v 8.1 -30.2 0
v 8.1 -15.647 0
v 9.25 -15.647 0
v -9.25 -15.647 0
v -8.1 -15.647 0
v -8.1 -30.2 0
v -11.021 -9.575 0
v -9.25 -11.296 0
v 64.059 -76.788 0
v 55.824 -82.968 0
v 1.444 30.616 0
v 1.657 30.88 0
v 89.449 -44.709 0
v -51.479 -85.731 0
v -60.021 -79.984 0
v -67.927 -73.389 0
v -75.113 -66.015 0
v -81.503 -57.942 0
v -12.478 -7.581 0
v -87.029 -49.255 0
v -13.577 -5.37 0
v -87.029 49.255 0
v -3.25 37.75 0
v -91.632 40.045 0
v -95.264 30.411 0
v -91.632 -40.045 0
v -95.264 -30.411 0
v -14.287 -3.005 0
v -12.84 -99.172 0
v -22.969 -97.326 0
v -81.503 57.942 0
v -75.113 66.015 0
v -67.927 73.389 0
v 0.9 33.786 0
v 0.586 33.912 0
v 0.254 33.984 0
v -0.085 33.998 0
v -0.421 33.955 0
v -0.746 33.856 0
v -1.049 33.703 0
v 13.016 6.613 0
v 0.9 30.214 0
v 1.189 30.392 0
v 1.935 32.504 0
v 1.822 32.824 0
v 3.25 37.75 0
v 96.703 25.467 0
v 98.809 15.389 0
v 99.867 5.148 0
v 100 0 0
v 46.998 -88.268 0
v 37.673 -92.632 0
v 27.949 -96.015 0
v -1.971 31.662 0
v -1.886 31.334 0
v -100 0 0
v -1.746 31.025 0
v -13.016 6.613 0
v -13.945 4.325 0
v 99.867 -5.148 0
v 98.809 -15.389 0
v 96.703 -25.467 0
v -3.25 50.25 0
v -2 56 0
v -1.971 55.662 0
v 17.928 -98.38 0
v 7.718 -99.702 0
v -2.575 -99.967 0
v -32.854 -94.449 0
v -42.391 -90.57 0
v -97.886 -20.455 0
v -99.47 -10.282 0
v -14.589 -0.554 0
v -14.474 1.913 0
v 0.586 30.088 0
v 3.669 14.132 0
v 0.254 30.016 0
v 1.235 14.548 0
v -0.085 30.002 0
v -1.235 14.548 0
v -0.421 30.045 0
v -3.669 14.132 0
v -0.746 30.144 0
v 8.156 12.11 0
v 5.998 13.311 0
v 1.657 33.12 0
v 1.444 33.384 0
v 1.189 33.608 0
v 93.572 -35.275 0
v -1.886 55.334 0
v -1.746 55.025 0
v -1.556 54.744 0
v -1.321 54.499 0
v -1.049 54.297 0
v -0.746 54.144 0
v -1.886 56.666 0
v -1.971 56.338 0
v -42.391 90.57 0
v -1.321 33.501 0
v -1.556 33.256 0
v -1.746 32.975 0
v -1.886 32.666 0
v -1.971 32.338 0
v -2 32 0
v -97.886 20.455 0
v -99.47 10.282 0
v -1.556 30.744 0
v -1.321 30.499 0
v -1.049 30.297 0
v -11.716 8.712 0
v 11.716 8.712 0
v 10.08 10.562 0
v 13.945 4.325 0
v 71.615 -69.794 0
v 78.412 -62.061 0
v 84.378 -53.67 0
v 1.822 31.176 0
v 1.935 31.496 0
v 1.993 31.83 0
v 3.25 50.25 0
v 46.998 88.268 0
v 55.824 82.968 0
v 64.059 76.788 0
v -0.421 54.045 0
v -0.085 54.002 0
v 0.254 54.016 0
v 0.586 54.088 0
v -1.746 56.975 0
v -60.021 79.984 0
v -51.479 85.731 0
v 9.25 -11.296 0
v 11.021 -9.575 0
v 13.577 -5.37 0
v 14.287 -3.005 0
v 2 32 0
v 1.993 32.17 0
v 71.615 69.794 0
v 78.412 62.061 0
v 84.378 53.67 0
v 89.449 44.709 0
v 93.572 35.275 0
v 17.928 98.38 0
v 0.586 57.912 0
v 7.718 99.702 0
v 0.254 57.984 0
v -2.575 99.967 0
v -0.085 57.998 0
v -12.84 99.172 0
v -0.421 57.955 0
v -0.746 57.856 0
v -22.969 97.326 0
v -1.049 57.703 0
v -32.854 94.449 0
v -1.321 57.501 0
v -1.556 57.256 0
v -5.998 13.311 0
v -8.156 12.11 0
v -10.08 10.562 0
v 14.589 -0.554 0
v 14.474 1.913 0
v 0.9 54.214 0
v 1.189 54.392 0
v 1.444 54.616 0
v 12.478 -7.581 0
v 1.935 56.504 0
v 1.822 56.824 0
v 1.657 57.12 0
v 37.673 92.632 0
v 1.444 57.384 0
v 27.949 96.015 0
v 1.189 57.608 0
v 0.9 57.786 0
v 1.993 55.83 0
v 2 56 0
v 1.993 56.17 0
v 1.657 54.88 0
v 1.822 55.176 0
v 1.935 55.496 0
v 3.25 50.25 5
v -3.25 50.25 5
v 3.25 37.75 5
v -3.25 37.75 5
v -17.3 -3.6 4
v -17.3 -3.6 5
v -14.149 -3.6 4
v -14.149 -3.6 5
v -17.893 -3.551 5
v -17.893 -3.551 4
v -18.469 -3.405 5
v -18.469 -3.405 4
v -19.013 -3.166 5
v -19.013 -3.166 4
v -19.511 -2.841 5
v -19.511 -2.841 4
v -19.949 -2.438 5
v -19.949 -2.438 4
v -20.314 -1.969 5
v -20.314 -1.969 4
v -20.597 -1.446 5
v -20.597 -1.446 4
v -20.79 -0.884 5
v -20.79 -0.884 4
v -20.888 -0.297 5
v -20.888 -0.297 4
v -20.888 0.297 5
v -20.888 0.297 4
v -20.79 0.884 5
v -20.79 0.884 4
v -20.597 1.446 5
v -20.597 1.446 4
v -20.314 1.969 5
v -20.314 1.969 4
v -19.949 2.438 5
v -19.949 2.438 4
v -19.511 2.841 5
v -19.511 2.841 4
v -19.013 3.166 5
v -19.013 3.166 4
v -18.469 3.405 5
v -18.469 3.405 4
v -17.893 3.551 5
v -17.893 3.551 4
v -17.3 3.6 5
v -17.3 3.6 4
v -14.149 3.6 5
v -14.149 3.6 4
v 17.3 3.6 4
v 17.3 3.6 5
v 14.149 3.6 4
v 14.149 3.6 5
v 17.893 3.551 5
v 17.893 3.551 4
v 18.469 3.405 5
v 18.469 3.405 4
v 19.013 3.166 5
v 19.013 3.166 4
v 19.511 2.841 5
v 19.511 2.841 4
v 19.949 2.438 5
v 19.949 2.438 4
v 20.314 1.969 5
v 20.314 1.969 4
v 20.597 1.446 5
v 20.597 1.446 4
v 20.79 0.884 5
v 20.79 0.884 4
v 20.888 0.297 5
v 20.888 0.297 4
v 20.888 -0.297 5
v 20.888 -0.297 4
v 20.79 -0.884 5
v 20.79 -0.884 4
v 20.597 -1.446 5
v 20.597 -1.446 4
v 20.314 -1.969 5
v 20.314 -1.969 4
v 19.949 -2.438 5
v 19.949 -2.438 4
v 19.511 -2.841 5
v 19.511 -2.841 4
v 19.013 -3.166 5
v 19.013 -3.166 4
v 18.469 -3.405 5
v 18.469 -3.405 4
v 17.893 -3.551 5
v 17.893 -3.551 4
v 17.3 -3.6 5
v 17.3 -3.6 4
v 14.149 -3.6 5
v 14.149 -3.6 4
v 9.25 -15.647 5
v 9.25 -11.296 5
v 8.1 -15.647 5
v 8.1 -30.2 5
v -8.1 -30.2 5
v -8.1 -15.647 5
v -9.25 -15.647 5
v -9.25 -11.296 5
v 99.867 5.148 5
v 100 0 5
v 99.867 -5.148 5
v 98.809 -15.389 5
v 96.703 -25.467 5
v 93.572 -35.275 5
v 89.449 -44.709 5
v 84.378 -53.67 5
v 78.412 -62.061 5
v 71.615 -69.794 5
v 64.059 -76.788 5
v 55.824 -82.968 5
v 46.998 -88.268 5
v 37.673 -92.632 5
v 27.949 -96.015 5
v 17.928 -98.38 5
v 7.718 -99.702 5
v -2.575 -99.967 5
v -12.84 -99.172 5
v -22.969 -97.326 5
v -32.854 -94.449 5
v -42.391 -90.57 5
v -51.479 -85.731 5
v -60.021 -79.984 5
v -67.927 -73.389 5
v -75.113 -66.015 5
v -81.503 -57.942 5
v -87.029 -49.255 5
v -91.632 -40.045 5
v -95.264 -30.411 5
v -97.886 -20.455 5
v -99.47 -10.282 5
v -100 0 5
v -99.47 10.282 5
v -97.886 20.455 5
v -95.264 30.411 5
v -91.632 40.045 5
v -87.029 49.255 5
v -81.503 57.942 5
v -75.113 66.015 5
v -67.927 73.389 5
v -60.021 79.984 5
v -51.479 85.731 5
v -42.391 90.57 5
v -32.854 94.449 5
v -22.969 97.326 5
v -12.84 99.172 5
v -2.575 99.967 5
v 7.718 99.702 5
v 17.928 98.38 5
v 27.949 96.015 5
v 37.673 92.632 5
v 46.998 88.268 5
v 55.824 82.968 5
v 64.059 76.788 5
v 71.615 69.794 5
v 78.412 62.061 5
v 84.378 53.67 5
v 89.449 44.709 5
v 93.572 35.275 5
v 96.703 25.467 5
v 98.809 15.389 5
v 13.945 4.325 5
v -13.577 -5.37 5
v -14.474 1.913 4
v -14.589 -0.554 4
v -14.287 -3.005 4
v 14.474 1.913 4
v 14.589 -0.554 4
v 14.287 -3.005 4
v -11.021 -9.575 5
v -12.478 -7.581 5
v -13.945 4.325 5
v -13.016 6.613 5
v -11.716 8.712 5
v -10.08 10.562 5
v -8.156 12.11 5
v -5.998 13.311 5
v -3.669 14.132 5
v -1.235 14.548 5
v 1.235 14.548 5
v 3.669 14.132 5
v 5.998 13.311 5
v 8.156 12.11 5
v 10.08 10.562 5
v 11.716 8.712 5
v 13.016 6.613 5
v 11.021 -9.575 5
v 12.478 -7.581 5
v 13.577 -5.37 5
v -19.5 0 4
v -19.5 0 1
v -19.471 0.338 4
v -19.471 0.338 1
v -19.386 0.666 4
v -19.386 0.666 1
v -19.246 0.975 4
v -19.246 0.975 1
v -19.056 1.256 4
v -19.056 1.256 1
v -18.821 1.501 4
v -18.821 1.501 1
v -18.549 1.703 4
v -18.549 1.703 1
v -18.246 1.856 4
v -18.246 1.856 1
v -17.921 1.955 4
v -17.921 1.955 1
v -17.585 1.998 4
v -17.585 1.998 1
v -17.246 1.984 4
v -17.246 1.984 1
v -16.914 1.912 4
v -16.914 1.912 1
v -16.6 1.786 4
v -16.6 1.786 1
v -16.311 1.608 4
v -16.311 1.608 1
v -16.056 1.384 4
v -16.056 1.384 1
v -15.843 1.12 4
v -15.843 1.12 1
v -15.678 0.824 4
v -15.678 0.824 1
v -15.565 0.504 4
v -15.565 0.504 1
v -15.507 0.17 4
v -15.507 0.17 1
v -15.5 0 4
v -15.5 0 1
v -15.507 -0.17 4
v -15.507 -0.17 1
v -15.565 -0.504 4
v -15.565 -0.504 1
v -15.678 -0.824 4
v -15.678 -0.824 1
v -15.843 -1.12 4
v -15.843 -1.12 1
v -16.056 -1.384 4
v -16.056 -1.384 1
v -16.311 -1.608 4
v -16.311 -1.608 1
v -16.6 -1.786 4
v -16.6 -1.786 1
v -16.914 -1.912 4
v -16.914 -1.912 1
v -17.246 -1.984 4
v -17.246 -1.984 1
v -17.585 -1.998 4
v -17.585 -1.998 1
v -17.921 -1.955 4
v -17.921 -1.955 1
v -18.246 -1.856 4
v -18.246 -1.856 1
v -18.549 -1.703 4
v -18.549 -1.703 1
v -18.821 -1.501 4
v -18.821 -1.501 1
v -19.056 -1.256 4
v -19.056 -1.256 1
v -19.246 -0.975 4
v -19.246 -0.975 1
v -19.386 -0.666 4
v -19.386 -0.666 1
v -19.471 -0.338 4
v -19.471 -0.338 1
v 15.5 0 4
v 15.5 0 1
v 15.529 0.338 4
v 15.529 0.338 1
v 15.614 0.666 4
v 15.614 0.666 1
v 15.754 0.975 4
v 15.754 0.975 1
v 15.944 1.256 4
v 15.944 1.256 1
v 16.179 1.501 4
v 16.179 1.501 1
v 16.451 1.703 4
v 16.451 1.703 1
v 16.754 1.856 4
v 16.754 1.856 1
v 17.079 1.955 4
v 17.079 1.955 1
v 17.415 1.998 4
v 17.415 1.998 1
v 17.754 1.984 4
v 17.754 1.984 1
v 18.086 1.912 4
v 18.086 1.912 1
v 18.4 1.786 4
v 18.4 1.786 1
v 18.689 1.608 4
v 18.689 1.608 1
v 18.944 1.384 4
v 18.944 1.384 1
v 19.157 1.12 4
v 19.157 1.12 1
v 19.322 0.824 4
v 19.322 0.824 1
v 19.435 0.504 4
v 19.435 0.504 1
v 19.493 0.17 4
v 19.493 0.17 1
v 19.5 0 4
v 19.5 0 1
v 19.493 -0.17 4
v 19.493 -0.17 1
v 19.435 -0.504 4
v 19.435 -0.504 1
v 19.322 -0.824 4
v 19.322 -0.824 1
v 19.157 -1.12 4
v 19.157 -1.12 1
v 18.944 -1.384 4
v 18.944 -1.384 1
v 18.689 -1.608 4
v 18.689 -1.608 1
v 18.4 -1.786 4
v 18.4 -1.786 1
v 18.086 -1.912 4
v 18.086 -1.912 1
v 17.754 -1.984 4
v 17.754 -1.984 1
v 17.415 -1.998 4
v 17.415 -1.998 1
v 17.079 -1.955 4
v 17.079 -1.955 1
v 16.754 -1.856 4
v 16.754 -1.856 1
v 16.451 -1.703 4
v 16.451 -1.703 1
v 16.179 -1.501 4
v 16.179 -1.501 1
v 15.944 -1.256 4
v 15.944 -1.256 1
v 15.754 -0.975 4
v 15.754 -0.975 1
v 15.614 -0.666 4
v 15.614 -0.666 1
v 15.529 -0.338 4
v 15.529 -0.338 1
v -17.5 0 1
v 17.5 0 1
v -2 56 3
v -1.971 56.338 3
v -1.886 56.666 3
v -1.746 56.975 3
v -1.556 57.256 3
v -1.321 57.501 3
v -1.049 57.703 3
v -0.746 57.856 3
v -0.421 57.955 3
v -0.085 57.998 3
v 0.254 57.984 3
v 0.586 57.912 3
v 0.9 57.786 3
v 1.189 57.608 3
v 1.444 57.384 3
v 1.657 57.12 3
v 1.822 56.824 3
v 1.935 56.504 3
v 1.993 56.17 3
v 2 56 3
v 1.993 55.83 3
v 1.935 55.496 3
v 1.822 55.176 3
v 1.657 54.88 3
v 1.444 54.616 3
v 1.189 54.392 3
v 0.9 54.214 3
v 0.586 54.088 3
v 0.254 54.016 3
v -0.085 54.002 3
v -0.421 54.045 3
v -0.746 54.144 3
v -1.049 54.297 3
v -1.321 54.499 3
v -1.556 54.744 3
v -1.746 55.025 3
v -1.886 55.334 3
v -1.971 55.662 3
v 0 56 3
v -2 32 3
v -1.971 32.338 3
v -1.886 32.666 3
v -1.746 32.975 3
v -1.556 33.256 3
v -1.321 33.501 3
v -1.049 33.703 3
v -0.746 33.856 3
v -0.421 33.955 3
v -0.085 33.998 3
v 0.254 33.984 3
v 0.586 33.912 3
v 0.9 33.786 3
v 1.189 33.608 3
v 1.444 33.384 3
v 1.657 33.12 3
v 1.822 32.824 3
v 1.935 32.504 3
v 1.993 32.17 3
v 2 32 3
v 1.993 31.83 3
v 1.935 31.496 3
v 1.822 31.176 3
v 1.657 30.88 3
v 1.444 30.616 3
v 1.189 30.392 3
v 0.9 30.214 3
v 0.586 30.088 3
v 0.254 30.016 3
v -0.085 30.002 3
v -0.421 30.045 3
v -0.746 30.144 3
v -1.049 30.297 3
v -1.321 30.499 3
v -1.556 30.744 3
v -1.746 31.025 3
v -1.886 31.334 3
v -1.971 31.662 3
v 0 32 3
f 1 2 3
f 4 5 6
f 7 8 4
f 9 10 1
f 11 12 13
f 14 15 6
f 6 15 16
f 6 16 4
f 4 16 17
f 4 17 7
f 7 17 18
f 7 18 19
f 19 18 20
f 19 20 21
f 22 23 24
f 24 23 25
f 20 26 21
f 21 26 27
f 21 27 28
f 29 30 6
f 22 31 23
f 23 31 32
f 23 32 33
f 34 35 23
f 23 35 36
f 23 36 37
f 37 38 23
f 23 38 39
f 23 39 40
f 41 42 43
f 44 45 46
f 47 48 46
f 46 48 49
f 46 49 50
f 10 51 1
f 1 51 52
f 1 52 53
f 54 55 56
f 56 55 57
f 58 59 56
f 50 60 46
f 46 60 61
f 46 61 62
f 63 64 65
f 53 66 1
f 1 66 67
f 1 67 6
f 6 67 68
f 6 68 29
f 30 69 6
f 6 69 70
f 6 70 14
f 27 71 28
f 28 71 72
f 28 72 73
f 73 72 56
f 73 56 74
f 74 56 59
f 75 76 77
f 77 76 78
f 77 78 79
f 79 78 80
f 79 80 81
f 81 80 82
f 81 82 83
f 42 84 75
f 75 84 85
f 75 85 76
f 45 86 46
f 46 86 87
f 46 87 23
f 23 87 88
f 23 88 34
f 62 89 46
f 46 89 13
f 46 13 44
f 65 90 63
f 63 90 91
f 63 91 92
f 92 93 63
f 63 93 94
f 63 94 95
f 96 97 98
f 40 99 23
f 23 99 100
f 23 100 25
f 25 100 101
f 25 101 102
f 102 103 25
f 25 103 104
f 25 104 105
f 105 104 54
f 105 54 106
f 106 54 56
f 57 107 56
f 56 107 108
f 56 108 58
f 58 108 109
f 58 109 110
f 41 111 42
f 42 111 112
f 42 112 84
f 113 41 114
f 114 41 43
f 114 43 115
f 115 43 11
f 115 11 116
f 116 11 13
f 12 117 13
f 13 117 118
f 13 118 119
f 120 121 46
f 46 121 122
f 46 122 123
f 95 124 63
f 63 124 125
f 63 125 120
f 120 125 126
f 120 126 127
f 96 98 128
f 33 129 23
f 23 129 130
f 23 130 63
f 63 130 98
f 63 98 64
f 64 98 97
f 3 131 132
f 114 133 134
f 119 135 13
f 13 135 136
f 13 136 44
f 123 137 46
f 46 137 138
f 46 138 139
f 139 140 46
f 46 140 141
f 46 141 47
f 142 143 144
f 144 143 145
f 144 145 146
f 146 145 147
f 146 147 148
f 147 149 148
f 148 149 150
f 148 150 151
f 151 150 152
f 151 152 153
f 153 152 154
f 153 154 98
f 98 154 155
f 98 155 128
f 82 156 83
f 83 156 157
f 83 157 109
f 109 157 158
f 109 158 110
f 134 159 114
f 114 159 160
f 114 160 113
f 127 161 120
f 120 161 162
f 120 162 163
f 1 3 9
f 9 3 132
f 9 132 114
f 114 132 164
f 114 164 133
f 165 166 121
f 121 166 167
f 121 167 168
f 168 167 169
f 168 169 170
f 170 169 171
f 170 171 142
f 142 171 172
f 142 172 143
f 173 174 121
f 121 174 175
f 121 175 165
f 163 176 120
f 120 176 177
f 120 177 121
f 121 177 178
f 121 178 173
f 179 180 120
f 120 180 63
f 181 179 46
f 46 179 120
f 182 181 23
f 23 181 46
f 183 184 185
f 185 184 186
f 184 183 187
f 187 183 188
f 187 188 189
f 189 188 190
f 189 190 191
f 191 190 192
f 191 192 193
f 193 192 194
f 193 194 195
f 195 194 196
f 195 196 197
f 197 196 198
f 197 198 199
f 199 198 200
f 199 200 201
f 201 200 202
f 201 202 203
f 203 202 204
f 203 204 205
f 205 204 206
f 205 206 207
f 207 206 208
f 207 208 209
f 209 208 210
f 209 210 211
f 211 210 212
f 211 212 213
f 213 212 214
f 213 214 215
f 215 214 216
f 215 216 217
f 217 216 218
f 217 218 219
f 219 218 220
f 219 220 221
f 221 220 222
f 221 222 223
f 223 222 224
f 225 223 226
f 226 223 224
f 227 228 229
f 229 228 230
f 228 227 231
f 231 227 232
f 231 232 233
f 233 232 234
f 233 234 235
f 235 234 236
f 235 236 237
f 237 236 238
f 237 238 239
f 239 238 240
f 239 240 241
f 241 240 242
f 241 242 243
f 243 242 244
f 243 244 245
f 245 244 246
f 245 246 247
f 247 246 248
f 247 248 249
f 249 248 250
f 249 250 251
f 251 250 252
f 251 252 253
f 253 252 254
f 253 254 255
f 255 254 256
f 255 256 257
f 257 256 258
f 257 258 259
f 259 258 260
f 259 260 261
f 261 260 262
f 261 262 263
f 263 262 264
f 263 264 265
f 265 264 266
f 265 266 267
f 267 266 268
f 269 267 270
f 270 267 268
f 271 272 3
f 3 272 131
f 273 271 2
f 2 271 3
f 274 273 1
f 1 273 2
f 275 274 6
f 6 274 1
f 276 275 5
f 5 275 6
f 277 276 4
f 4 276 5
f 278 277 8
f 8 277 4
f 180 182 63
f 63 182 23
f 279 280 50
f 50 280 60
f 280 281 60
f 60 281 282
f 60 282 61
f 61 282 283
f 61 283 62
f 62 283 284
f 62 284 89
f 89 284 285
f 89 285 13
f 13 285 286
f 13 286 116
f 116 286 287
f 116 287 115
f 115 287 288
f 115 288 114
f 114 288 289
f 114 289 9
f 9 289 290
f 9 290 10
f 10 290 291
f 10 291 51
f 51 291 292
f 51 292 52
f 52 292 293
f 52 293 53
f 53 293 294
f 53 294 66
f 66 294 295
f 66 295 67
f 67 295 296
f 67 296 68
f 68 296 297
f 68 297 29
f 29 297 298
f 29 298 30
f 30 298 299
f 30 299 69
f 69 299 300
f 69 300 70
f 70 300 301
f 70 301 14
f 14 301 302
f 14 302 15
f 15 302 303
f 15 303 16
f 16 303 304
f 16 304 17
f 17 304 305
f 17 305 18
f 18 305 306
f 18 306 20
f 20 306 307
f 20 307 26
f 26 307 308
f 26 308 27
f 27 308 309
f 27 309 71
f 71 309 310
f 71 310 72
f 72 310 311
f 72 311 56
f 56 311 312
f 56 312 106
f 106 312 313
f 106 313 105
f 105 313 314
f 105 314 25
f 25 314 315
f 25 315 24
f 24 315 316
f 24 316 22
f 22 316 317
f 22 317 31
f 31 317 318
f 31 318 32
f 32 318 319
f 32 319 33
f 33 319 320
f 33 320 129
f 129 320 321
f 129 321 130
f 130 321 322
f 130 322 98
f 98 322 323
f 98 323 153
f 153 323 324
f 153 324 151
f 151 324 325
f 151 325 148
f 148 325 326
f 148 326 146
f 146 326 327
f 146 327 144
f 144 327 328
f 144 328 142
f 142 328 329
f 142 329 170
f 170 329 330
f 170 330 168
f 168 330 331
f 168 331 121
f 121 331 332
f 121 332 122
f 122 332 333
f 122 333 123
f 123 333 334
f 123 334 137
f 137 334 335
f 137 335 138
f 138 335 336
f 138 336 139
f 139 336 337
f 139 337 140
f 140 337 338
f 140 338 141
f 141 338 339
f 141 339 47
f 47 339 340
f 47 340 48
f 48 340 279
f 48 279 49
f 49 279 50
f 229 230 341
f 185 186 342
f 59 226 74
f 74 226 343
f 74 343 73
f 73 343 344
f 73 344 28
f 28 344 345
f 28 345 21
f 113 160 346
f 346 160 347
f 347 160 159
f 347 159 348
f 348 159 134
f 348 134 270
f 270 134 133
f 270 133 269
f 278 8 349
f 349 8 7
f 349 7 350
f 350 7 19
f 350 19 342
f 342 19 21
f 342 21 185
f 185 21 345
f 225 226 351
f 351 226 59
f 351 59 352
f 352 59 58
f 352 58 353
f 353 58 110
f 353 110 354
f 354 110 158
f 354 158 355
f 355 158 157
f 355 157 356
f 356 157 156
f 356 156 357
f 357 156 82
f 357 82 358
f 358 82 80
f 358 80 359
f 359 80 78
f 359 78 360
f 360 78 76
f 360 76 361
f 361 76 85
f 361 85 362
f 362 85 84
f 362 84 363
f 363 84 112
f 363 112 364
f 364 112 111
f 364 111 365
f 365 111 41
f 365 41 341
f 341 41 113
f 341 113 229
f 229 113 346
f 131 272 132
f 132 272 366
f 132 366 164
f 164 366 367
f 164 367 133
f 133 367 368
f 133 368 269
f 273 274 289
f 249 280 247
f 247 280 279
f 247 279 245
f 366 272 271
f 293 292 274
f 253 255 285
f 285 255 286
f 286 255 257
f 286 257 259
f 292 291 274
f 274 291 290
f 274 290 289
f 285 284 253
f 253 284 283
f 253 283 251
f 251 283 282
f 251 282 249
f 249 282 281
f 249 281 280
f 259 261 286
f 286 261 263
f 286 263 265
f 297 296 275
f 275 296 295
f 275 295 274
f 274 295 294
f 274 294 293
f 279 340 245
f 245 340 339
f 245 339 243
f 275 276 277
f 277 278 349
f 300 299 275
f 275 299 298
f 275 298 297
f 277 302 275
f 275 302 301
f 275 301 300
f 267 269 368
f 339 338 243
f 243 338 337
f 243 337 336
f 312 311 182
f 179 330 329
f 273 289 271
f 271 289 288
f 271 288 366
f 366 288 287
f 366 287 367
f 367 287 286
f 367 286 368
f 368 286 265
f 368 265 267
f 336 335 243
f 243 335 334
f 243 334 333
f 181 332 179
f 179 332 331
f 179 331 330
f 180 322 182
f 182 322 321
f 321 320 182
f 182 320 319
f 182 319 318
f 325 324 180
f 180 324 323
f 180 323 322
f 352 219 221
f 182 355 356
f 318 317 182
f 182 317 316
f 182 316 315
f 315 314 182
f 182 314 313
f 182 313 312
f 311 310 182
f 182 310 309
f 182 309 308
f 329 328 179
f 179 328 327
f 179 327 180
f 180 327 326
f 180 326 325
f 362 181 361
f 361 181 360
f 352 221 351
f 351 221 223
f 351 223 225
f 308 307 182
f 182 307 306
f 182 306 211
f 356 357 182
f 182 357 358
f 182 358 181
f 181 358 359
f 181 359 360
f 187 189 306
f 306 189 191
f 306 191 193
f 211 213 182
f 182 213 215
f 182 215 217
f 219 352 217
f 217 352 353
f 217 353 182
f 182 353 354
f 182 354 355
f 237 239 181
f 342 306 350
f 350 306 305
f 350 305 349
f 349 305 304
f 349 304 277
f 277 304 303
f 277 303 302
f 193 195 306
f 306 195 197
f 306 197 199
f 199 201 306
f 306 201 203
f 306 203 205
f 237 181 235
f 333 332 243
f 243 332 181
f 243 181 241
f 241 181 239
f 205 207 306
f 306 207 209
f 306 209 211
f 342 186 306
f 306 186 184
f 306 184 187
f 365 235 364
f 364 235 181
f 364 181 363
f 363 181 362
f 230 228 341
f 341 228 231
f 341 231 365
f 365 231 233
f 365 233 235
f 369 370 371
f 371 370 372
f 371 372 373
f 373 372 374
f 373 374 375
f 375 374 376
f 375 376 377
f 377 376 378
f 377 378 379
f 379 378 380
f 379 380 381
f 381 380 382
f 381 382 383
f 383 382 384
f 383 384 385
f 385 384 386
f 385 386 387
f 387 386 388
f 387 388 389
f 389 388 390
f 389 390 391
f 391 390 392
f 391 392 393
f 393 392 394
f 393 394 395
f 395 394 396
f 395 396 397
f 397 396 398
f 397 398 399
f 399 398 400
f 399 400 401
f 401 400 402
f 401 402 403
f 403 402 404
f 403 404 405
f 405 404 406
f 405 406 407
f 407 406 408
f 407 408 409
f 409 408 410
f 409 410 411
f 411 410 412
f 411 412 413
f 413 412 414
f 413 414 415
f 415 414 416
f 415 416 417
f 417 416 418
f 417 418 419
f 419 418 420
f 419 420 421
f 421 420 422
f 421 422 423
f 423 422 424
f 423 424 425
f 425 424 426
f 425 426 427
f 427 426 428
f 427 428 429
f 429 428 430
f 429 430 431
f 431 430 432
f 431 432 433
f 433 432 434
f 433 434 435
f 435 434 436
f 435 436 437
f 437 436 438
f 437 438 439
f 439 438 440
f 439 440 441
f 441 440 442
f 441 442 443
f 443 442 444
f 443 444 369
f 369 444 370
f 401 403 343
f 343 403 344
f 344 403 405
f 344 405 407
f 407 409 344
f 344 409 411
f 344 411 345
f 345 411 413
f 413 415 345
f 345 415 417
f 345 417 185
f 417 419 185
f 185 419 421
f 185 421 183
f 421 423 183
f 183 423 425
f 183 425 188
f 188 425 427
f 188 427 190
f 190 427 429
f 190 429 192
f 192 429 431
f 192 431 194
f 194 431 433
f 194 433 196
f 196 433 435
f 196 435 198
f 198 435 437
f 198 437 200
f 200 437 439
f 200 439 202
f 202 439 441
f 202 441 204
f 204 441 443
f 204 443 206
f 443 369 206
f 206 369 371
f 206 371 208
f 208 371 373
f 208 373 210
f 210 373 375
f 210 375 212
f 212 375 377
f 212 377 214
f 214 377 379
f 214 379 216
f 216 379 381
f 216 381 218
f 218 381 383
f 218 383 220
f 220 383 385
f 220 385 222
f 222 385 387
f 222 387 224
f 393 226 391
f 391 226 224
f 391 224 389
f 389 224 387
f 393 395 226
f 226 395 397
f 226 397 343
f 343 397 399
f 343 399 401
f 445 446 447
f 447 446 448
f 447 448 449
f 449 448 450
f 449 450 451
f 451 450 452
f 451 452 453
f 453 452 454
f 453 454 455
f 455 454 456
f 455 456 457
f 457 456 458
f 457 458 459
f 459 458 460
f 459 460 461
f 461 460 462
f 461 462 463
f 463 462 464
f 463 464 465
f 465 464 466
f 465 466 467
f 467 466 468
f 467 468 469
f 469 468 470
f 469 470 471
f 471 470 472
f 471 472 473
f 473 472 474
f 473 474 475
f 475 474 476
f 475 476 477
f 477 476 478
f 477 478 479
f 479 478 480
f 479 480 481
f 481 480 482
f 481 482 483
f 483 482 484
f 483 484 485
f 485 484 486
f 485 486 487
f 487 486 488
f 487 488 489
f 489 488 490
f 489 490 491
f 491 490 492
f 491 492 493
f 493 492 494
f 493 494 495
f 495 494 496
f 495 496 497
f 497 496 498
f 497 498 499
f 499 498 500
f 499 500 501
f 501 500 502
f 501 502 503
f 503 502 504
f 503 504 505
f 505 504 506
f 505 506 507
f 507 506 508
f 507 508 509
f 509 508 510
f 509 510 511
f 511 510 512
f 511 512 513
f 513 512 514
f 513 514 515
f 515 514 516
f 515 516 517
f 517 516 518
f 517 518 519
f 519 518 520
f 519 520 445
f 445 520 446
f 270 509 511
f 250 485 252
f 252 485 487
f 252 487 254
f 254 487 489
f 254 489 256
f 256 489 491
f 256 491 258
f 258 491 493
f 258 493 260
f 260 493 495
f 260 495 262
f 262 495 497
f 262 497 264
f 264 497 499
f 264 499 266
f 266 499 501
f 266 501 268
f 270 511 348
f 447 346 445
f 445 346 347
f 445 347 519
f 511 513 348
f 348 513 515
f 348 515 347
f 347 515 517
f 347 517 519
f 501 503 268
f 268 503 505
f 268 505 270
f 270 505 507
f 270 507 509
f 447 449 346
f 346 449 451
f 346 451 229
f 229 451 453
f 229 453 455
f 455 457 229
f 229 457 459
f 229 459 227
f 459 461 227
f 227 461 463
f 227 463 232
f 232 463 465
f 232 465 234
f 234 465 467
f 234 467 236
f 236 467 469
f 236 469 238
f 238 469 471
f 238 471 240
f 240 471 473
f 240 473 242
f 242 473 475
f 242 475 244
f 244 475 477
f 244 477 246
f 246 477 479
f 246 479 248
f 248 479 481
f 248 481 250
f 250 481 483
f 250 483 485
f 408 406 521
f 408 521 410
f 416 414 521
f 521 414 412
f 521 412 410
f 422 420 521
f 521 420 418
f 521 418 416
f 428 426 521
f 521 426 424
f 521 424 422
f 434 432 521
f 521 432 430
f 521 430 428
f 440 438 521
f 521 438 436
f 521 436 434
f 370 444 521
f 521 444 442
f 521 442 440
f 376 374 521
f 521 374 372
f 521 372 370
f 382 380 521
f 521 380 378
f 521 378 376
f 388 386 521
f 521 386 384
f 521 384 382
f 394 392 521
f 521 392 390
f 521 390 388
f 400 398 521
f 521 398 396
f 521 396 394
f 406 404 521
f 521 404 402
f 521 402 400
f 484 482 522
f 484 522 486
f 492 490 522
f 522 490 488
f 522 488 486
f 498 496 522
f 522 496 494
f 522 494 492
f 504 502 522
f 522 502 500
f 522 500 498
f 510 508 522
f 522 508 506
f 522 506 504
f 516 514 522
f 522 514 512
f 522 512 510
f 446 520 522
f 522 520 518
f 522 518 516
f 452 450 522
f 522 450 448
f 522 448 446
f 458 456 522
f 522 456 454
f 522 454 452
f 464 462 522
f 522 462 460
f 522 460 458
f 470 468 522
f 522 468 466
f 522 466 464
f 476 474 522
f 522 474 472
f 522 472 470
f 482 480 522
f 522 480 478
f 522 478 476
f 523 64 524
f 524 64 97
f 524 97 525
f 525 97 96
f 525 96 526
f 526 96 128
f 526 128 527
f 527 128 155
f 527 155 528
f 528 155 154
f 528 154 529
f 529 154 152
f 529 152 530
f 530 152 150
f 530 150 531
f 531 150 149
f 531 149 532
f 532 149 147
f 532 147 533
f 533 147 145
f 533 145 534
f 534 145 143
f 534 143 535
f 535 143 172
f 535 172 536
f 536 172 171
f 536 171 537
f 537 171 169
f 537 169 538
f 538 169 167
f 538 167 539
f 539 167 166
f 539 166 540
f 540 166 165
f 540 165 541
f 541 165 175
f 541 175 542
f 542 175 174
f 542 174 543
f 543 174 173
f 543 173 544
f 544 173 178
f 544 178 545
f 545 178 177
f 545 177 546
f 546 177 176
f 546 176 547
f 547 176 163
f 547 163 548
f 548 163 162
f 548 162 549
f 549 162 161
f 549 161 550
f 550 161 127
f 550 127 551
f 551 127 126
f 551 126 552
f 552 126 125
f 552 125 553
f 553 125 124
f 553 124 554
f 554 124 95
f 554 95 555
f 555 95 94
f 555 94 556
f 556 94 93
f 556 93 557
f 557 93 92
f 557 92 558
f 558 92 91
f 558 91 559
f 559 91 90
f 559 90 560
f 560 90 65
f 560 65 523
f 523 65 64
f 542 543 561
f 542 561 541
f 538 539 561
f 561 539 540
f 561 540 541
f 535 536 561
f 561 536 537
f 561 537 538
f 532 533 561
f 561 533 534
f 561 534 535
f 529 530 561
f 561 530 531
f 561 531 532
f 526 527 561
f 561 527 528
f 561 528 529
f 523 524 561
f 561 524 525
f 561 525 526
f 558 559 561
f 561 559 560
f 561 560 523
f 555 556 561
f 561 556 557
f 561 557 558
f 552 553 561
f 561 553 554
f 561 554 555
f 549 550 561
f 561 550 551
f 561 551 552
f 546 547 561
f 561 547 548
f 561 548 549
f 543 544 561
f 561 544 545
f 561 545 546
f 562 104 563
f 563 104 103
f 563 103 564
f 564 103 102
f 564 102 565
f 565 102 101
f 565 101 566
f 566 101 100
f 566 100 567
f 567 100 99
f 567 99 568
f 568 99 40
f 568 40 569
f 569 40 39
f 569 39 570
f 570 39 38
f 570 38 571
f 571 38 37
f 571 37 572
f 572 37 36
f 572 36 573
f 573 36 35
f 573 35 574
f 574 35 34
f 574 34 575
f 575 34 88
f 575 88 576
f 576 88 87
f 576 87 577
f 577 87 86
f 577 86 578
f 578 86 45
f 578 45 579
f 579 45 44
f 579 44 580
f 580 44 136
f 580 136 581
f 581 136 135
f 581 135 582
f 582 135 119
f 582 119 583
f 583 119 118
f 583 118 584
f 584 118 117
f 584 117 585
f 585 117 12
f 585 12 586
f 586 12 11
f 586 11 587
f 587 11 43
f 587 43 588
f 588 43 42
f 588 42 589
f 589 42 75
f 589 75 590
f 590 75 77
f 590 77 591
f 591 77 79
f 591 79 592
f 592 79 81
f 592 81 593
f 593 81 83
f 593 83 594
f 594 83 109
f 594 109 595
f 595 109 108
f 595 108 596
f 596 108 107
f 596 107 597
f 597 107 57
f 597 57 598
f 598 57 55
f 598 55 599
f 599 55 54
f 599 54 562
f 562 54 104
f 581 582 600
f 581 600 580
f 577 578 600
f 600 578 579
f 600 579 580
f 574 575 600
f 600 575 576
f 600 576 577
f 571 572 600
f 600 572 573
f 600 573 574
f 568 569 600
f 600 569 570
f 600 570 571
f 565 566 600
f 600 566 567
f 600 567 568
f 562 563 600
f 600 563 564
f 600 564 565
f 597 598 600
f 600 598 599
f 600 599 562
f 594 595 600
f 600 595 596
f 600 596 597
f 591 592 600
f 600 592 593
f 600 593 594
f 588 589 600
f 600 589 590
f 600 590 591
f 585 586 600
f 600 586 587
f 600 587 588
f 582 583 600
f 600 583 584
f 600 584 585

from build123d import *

# Parameters (mm, degrees)
SKETCH1_R           = 100
SKETCH1_R_2         = 2
SKETCH1_W           = 6.5
SKETCH1_H           = 12.5
BOSS_EXTRUDE1_DEPTH = 5
SKETCH1_3_R         = 2
BOSS_EXTRUDE2_DEPTH = 4
SKETCH1_4_R         = 2
BOSS_EXTRUDE3_DEPTH = 1
SKETCH1_6_R         = 2
BOSS_EXTRUDE6_DEPTH = 5
SKETCH1_7_R         = 2
CUT_EXTRUDE1_DEPTH  = 3


with BuildPart() as part:
    # Sketch1 → Boss-Extrude1 (new body)
    with BuildSketch(Plane.XY):
        Circle(SKETCH1_R)
        with BuildLine():
            Line((-17.3, 3.6), (-14.149204925, 3.6))
            ThreePointArc((-14.149204925, 3.6), (0, 14.6), (14.149204925, 3.6))
            Line((14.149204925, 3.6), (17.3, 3.6))
            ThreePointArc((17.3, 3.6), (20.9, 0), (17.3, -3.6))
            Line((17.3, -3.6), (14.149204925, -3.6))
            ThreePointArc((14.149204925, -3.6), (12.316145556, -7.840443778), (9.25, -11.295906338))
            Line((9.25, -11.295906338), (9.25, -15.647016094))
            Line((9.25, -15.647016094), (8.1, -15.647016094))
            Line((8.1, -15.647016094), (8.1, -30.2))
            Line((8.1, -30.2), (-8.1, -30.2))
            Line((-8.1, -30.2), (-8.1, -15.647016094))
            Line((-8.1, -15.647016094), (-9.25, -15.647016094))
            Line((-9.25, -15.647016094), (-9.25, -11.295906338))
            ThreePointArc((-9.25, -11.295906338), (-12.316145556, -7.840443778), (-14.149204925, -3.6))
            Line((-14.149204925, -3.6), (-17.3, -3.6))
            ThreePointArc((-17.3, -3.6), (-20.9, 0), (-17.3, 3.6))
        make_face(mode=Mode.SUBTRACT)
        with Locations((0, 32)):
            Circle(SKETCH1_R_2, mode=Mode.SUBTRACT)
        with Locations((0, 44)):
            Rectangle(SKETCH1_W, SKETCH1_H, mode=Mode.SUBTRACT)
        with Locations((0, 56)):
            Circle(SKETCH1_R_2, mode=Mode.SUBTRACT)
    extrude(amount=BOSS_EXTRUDE1_DEPTH)

    # Sketch1<3> → Boss-Extrude2 (add)
    # profile 1 of 2: a face of its own
    with BuildSketch(Plane.XY):
        with BuildLine():
            ThreePointArc((-14.149204925, -3.6), (-14.6, 0), (-14.149204925, 3.6))
            Line((-14.149204925, 3.6), (-17.3, 3.6))
            ThreePointArc((-17.3, 3.6), (-20.9, 0), (-17.3, -3.6))
            Line((-17.3, -3.6), (-14.149204925, -3.6))
        make_face()
        with Locations((-17.5, 0)):
            Circle(SKETCH1_3_R, mode=Mode.SUBTRACT)
    # profile 2 of 2: a face of its own
    with BuildSketch(Plane.XY):
        with BuildLine():
            Line((17.3, 3.6), (14.149204925, 3.6))
            ThreePointArc((14.149204925, 3.6), (14.6, 0), (14.149204925, -3.6))
            Line((14.149204925, -3.6), (17.3, -3.6))
            ThreePointArc((17.3, -3.6), (20.9, 0), (17.3, 3.6))
        make_face()
        with Locations((17.5, 0)):
            Circle(SKETCH1_3_R, mode=Mode.SUBTRACT)
    extrude(amount=BOSS_EXTRUDE2_DEPTH)

    # Sketch1<4> → Boss-Extrude3 (add)
    with BuildSketch(Plane.XY):
        with Locations((-17.5, 0)):
            Circle(SKETCH1_4_R)
        with Locations((17.5, 0)):
            Circle(SKETCH1_4_R)
    extrude(amount=BOSS_EXTRUDE3_DEPTH)

    # Sketch1<6> → Boss-Extrude6 (add)
    with BuildSketch(Plane.XY):
        with Locations((0, 56)):
            Circle(SKETCH1_6_R)
        with Locations((0, 32)):
            Circle(SKETCH1_6_R)
    extrude(amount=BOSS_EXTRUDE6_DEPTH)

    # Sketch1<7> → Cut-Extrude1 (cut)
    with BuildSketch(Plane.XY):
        with Locations((0, 32)):
            Circle(SKETCH1_7_R)
        with Locations((0, 56)):
            Circle(SKETCH1_7_R)
    extrude(amount=CUT_EXTRUDE1_DEPTH, mode=Mode.SUBTRACT)


solid = part.part
